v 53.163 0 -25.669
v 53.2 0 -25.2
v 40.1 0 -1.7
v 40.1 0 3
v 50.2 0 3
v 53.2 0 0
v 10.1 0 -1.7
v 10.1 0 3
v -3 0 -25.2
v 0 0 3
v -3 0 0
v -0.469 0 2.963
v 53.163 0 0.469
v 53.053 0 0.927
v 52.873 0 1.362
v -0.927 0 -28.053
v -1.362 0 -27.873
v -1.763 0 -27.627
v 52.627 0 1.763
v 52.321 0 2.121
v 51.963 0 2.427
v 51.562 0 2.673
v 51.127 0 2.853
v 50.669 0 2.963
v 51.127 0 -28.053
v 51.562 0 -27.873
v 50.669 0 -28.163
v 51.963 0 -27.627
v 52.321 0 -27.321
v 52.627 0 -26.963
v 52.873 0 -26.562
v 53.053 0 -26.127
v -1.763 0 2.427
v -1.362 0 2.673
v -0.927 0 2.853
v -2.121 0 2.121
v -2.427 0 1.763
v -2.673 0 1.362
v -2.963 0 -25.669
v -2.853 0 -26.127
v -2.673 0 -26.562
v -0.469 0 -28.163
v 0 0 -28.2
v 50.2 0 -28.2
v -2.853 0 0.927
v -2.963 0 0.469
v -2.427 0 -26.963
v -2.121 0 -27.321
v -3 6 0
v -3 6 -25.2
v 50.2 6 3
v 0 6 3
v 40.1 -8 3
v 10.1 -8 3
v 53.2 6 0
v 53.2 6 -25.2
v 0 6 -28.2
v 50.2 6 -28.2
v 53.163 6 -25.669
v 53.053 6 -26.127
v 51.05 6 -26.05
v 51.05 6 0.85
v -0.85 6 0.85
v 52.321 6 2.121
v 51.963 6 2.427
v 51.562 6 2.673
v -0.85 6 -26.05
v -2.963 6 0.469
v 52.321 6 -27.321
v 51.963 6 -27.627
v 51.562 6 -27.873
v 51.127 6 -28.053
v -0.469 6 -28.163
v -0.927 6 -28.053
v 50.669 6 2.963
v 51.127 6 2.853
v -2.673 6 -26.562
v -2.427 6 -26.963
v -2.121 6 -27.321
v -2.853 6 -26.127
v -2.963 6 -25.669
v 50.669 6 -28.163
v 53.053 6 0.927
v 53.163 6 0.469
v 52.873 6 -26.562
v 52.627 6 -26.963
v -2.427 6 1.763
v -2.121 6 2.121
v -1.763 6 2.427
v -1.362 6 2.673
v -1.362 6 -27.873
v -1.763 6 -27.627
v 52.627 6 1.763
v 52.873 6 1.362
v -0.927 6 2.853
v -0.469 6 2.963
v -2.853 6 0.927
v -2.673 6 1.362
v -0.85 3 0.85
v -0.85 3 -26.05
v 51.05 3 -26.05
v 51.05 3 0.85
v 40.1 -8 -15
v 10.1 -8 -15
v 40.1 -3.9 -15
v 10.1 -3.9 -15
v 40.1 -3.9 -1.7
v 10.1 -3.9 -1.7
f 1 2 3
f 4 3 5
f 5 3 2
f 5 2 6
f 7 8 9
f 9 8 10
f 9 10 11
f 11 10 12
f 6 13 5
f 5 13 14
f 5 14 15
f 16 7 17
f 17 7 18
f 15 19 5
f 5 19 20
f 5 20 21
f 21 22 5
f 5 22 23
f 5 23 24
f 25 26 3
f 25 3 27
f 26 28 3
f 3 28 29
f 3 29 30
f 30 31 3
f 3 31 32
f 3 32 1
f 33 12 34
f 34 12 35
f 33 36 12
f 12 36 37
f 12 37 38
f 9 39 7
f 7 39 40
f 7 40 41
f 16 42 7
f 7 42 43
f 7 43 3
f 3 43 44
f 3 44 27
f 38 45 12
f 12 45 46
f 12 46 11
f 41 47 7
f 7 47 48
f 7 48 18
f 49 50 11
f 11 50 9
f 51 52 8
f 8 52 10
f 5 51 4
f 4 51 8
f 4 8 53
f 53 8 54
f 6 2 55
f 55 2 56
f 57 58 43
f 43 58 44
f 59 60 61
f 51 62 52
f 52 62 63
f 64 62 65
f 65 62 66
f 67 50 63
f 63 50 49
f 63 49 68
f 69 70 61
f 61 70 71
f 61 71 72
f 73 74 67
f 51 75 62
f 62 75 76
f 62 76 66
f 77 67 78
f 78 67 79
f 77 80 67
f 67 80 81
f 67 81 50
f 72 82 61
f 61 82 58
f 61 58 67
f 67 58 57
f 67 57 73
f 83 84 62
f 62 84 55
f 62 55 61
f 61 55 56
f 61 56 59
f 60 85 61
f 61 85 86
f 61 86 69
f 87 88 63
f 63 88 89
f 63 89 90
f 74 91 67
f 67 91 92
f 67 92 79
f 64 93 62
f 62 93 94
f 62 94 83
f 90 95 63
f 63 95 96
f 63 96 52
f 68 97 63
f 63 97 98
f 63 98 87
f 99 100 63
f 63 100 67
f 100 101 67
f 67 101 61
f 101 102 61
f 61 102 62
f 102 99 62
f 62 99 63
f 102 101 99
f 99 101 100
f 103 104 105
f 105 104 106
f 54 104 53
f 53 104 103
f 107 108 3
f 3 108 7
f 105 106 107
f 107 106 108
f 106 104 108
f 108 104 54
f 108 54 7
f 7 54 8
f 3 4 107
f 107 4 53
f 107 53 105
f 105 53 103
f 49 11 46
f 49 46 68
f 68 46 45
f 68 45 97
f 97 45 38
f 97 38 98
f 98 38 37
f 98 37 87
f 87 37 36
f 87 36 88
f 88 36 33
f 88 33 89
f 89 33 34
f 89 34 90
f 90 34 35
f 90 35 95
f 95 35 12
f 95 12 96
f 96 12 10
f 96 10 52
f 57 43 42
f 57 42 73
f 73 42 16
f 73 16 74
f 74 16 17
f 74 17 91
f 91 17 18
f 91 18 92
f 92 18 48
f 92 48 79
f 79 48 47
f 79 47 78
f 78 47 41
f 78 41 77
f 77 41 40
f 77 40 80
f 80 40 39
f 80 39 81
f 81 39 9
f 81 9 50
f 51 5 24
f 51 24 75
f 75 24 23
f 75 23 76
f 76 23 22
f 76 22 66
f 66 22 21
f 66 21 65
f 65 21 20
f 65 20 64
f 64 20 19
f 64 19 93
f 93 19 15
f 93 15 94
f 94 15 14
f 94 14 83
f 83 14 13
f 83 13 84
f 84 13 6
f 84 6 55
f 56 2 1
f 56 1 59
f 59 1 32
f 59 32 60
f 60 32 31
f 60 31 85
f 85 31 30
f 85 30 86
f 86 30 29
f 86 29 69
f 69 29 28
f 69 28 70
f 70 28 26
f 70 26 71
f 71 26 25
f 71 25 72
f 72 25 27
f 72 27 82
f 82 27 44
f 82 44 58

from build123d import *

# Parameters (mm, degrees)
CROQUIS1_W              = 56.2
CROQUIS1_H              = 31.2
SALIENTE_EXTRUIR1_DEPTH = 6
CROQUIS3_W              = 51.9
CROQUIS3_H              = 26.9
CORTAR_EXTRUIR1_DEPTH   = 3
CROQUIS5_W              = 56.2
CROQUIS5_H              = 18
SALIENTE_EXTRUIR2_DEPTH = 8
CROQUIS6_W              = 13.3
CROQUIS6_H              = 3.9
CORTAR_EXTRUIR2_DEPTH   = 64.385171768
CROQUIS7_W              = 13.1
CROQUIS7_H              = 8
CORTAR_EXTRUIR3_DEPTH   = 57.729533754
REDONDEO3_R             = 3


with BuildPart() as part:
    # Croquis1 → Saliente-Extruir1 (new body)
    with BuildSketch(Plane(origin=(0, 0, 0), x_dir=(1, 0, 0), z_dir=(0, 1, 0))):
        with Locations((25.1, 12.6)):
            Rectangle(CROQUIS1_W, CROQUIS1_H)
    extrude(amount=SALIENTE_EXTRUIR1_DEPTH)

    # Croquis3 → Cortar-Extruir1 (cut)
    with BuildSketch(Plane(origin=(0, 6, 0), x_dir=(1, 0, 0), z_dir=(0, 1, 0))):
        with Locations((25.1, 12.6)):
            Rectangle(CROQUIS3_W, CROQUIS3_H)
    extrude(amount=-CORTAR_EXTRUIR1_DEPTH, mode=Mode.SUBTRACT)

    # Croquis5 → Saliente-Extruir2 (add)
    with BuildSketch(Plane.XZ):
        with Locations((25.1, -6)):
            Rectangle(CROQUIS5_W, CROQUIS5_H)
    extrude(amount=SALIENTE_EXTRUIR2_DEPTH)

    # Croquis6 → Cortar-Extruir2 (cut, through all)
    with BuildSketch(Plane.ZY.offset(3)):
        with Locations((-8.35, -1.95)):
            Rectangle(CROQUIS6_W, CROQUIS6_H)
    extrude(amount=-CORTAR_EXTRUIR2_DEPTH, mode=Mode.SUBTRACT)

    # Croquis7 → Cortar-Extruir3 (cut, through all)
    with BuildSketch(Plane(origin=(0, 0, -15), x_dir=(-1, 0, 0), z_dir=(0, 0, -1))):
        with Locations((-46.65, -4)):
            Rectangle(CROQUIS7_W, CROQUIS7_H)
        with Locations((-3.55, -4)):
            Rectangle(CROQUIS7_W, CROQUIS7_H)
    extrude(amount=-CORTAR_EXTRUIR3_DEPTH, mode=Mode.SUBTRACT)

    # Redondeo3
    redondeo3_edges = [part.edges().sort_by_distance(p)[0] for p in [
        (-3, 3, -28.2),
        (53.2, 3, -28.2),
        (53.2, 3, 3),
        (-3, 3, 3),
    ]]
    fillet(redondeo3_edges, radius=REDONDEO3_R)


solid = part.part
